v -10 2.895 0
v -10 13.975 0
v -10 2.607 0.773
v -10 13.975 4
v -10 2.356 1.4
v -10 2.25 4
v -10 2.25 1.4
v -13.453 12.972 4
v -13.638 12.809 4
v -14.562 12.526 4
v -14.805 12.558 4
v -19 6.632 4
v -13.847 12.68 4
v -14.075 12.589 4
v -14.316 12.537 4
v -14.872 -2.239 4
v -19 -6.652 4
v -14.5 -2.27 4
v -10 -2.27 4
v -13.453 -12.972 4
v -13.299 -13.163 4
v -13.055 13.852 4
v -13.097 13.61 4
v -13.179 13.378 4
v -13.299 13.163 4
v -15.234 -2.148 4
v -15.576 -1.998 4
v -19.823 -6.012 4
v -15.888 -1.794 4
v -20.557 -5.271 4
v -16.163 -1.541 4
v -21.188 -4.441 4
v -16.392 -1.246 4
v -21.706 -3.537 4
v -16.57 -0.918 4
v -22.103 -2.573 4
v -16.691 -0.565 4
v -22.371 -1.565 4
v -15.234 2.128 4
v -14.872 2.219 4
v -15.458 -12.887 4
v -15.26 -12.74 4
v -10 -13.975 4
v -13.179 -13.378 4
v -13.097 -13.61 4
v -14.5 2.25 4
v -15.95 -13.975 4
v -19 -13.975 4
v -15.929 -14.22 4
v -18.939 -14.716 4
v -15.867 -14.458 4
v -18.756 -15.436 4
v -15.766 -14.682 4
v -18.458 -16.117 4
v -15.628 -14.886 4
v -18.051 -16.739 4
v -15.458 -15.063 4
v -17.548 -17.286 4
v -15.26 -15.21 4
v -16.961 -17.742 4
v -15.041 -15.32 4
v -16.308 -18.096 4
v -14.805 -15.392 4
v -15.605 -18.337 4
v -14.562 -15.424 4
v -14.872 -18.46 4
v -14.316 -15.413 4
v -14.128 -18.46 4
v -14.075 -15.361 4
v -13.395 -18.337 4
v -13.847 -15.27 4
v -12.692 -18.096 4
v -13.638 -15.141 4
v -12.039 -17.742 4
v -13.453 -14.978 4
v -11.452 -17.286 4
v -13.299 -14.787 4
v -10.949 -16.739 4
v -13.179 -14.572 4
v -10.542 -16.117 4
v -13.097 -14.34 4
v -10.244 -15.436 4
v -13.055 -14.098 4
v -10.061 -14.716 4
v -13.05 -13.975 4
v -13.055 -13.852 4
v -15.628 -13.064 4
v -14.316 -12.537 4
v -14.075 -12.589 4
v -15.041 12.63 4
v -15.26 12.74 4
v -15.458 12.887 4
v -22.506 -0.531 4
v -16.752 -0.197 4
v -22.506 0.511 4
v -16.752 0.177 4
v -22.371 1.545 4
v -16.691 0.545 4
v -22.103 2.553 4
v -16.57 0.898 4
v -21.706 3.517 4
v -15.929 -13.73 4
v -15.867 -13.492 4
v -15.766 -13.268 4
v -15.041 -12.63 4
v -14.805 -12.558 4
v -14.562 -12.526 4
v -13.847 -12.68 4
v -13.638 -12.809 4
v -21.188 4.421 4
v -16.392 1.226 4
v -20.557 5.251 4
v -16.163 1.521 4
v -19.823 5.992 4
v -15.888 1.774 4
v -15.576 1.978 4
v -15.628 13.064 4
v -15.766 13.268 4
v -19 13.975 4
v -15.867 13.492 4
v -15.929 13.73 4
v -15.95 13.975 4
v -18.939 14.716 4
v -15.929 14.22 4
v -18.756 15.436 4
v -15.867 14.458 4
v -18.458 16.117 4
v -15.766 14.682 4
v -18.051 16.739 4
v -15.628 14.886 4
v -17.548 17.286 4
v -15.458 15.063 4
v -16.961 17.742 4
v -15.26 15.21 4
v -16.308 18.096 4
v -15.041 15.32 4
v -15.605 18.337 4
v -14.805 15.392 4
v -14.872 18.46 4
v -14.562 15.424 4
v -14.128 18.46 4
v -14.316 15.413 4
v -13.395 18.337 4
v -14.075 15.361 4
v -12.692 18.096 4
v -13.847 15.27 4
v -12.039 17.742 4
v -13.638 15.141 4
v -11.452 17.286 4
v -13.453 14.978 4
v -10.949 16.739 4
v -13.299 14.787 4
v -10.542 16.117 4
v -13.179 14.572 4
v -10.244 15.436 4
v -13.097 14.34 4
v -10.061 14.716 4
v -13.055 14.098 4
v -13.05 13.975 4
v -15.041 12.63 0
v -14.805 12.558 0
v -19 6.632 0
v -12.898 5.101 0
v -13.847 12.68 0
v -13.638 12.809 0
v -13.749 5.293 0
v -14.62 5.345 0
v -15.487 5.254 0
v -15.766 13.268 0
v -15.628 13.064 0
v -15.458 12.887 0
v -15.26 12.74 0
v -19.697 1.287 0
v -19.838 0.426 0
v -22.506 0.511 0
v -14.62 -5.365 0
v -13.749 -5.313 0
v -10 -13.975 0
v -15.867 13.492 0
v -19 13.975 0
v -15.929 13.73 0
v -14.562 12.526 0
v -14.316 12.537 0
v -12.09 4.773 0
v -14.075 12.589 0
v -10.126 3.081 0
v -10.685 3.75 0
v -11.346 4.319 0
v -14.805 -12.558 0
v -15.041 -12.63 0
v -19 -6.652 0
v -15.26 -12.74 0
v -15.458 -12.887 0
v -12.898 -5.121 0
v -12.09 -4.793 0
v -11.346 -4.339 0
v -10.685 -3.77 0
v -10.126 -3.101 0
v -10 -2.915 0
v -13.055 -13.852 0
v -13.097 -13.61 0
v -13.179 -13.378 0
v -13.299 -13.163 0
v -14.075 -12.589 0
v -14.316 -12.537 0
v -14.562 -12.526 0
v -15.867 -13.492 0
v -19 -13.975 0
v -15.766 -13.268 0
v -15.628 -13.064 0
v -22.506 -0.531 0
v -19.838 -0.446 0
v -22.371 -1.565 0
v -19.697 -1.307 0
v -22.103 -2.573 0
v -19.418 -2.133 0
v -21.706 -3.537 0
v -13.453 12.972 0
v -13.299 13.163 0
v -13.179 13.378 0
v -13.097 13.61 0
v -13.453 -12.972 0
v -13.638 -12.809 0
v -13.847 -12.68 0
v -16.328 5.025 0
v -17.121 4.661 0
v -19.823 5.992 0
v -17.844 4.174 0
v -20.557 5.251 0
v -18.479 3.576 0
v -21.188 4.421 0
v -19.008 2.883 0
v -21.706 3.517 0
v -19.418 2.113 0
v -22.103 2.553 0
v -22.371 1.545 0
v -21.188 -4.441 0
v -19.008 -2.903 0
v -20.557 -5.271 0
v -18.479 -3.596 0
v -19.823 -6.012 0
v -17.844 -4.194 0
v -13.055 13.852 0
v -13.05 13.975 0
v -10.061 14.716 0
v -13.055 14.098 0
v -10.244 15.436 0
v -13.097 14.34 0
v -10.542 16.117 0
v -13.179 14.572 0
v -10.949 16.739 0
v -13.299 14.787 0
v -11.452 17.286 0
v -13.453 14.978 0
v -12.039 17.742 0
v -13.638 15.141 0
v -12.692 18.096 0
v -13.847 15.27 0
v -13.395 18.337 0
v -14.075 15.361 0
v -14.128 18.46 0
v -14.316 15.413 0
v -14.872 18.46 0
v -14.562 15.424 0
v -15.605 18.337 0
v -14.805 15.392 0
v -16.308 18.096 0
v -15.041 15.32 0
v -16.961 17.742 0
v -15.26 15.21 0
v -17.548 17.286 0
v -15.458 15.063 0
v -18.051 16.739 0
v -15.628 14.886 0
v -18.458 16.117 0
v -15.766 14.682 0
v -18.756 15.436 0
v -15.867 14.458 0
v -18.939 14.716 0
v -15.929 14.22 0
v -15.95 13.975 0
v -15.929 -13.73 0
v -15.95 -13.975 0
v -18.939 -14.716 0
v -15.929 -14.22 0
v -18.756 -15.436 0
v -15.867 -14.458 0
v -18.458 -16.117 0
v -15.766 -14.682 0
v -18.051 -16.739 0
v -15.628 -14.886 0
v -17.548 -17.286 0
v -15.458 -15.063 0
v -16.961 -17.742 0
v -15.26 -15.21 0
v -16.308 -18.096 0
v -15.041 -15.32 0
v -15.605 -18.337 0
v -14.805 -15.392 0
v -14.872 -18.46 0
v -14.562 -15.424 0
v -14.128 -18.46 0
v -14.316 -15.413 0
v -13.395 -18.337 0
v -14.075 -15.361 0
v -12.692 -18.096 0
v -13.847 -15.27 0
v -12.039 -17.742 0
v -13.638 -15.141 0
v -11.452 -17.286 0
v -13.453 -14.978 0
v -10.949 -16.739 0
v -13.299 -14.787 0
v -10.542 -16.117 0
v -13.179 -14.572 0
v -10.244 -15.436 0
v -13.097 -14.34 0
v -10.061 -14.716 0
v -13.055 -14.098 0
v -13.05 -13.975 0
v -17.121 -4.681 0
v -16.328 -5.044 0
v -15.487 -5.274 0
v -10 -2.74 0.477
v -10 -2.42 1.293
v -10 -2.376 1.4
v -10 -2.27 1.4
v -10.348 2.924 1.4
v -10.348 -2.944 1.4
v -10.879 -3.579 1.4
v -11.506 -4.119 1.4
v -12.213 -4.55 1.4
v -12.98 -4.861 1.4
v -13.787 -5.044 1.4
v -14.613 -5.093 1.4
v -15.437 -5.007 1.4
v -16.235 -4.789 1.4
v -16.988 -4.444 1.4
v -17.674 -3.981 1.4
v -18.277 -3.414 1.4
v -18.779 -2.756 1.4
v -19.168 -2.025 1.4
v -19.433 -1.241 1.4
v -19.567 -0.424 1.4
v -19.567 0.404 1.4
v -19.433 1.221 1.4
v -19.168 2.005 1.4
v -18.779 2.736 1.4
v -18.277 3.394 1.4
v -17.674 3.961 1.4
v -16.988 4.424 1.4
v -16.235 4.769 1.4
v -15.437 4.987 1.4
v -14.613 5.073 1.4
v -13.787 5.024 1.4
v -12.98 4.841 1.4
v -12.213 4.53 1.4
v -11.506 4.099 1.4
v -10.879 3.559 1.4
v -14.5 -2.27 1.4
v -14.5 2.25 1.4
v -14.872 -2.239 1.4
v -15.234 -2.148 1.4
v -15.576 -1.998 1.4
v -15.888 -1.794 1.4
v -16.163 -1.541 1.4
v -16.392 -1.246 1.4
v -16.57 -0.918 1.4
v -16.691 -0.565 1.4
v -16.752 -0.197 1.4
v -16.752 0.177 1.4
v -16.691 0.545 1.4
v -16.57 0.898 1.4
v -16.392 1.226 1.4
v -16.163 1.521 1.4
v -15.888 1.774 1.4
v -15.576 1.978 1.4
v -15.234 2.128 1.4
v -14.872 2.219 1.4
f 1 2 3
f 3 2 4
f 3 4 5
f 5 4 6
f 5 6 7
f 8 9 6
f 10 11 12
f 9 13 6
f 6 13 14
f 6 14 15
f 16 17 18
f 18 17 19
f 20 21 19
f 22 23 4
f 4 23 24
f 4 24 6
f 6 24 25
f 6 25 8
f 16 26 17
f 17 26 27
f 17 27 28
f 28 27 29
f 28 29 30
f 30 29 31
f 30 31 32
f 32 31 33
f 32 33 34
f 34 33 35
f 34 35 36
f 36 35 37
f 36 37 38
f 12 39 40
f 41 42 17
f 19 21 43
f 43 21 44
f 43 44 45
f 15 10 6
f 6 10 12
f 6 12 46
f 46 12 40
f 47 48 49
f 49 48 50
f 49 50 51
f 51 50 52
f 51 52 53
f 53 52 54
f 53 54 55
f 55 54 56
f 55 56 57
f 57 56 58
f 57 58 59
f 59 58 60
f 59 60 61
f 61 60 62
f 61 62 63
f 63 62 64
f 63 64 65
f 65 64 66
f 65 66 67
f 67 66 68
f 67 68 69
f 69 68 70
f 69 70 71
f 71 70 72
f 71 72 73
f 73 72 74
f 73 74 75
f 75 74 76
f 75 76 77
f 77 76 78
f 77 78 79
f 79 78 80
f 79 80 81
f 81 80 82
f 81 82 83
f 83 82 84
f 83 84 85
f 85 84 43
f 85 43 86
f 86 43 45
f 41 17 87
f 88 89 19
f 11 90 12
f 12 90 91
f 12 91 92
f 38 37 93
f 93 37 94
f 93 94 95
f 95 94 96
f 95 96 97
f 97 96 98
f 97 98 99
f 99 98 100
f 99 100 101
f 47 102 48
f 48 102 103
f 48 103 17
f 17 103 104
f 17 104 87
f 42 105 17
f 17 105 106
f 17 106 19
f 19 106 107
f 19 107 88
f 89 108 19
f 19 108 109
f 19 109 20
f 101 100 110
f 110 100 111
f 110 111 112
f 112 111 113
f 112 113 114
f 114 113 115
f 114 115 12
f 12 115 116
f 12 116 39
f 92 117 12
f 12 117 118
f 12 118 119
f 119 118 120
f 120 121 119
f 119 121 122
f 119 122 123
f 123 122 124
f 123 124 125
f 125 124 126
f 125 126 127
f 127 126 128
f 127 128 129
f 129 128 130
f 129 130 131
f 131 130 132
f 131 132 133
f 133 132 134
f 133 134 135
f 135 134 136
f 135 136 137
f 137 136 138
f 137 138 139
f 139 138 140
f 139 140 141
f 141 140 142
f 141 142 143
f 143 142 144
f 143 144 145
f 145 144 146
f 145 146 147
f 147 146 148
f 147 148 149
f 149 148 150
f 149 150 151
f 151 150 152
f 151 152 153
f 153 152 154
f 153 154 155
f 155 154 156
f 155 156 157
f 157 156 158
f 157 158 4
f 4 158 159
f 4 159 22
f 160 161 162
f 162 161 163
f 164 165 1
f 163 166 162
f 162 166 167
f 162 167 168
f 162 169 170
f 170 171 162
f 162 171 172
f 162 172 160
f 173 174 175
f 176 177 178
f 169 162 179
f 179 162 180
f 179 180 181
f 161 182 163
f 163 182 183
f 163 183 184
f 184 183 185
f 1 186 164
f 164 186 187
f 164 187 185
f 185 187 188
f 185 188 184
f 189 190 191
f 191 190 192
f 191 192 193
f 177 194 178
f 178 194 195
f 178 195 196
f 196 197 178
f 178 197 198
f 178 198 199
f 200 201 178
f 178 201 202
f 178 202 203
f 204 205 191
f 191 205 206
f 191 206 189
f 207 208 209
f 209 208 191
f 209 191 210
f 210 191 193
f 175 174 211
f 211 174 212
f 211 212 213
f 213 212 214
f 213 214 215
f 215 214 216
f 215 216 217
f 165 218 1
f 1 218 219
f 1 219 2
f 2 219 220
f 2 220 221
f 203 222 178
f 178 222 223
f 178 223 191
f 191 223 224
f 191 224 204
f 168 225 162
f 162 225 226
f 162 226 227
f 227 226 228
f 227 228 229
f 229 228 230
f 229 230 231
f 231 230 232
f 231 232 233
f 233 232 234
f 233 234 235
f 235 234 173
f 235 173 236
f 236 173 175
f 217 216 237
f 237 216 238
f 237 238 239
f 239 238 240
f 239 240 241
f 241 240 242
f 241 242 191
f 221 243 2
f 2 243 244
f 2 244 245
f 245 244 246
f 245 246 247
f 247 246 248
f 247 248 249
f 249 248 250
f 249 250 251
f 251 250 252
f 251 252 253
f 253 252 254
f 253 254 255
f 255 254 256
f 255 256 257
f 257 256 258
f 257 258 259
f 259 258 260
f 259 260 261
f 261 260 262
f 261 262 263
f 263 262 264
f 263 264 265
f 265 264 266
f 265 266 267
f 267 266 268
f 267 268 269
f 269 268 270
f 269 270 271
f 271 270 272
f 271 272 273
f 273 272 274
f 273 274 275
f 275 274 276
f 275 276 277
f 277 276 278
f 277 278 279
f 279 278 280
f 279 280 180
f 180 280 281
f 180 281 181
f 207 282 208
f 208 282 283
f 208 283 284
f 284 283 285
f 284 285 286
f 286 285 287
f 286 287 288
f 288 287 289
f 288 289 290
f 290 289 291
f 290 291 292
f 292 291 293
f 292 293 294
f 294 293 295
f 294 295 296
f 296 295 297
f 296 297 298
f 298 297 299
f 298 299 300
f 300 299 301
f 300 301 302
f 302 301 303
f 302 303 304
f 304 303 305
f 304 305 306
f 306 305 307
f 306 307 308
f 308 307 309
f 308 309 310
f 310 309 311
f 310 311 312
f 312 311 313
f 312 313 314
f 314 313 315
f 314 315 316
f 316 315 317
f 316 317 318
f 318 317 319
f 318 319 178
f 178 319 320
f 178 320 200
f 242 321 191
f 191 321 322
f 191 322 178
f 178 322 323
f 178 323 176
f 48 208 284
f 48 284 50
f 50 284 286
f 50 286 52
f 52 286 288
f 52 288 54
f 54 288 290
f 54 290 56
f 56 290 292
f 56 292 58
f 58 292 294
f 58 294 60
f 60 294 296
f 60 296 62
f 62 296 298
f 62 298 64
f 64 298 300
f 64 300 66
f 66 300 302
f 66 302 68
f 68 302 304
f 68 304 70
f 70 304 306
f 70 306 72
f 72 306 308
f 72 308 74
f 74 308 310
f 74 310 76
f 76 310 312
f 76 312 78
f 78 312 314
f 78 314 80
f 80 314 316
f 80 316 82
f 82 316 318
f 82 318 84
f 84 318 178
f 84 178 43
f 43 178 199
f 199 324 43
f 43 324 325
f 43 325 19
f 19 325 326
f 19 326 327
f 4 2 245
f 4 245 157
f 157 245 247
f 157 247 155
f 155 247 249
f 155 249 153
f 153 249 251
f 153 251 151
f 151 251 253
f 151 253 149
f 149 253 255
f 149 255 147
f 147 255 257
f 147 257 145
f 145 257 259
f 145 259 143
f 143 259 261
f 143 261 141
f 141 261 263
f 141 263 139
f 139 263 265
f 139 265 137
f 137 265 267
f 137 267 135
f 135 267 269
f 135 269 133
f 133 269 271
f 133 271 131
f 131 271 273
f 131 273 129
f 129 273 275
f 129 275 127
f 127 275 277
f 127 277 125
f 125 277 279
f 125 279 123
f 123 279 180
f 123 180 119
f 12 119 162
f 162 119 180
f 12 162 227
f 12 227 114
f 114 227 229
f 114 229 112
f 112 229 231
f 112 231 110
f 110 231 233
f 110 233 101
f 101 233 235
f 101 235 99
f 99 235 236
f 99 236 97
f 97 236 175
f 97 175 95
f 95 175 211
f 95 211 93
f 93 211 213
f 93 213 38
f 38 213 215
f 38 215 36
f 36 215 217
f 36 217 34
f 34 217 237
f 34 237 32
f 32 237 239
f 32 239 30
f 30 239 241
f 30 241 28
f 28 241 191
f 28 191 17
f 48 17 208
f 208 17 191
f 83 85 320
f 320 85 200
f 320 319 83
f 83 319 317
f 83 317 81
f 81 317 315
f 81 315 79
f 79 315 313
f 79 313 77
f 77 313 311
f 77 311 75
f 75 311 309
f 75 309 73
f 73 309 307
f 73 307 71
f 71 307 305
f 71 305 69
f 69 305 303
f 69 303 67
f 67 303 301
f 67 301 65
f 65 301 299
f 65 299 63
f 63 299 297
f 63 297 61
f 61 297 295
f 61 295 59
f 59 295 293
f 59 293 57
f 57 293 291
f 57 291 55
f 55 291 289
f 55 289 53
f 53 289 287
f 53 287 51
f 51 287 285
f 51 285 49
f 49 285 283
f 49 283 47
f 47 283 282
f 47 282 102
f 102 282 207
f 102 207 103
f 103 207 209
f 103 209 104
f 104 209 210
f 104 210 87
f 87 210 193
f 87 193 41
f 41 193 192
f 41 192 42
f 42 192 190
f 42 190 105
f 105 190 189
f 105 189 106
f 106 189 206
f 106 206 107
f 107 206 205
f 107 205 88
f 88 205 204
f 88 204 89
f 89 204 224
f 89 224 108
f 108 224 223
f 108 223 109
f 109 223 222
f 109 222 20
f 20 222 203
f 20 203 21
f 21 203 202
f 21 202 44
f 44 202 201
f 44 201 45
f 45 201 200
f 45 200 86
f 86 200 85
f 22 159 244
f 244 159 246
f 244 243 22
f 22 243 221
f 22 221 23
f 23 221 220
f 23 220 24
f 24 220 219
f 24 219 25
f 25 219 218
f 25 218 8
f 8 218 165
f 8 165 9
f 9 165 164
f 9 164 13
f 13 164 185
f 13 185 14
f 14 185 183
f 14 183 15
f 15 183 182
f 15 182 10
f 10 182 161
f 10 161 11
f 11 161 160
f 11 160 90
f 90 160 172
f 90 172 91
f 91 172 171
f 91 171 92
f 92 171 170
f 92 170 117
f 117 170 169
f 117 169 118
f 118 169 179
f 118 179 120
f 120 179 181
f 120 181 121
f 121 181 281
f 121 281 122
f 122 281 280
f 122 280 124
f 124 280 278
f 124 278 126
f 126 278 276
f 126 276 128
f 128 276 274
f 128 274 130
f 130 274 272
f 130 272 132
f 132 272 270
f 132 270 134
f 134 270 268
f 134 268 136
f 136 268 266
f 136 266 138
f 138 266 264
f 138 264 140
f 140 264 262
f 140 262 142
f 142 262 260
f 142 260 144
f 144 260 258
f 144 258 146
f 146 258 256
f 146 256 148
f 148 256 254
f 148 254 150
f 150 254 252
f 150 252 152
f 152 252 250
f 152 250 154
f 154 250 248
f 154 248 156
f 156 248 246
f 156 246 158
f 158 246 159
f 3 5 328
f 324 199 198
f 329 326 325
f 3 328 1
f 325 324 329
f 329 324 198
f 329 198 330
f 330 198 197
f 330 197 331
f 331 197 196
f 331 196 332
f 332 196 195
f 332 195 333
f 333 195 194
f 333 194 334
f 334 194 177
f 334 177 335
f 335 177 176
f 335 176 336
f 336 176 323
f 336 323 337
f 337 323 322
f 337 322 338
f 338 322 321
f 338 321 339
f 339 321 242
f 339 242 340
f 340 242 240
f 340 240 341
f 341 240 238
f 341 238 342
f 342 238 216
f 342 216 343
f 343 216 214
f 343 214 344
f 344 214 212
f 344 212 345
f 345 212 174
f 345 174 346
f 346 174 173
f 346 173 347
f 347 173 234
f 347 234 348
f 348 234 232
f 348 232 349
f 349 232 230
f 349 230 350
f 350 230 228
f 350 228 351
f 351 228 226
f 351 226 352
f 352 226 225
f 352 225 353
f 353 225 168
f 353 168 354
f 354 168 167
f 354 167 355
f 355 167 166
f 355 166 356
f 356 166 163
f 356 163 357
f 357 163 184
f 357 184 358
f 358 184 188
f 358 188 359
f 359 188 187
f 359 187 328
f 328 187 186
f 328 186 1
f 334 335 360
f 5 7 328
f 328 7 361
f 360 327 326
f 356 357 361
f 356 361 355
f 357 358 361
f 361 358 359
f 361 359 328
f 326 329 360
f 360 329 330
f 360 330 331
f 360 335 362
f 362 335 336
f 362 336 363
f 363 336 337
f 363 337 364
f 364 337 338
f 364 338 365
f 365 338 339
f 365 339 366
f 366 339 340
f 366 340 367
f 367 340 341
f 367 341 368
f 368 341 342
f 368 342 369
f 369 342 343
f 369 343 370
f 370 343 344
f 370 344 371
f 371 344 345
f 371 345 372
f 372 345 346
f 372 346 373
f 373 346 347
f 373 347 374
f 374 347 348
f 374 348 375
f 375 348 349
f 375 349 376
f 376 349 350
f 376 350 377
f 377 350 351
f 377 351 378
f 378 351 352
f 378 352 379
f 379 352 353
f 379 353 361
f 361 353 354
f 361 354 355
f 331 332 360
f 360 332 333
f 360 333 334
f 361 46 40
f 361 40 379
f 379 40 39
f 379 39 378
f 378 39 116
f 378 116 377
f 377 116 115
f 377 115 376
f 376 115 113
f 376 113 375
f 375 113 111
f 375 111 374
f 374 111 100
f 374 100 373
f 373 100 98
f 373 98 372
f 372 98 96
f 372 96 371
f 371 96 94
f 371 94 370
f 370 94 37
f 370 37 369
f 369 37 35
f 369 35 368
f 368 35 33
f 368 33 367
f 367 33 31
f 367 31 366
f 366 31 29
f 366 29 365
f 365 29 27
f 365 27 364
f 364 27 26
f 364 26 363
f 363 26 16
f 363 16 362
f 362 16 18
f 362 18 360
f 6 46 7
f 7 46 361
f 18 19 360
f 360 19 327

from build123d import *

# Parameters (mm, degrees)
SKETCH1_R           = 1.45
BOSS_EXTRUDE1_DEPTH = 4
SKETCH2_R           = 5.35614303
CUT_EXTRUDE1_DEPTH  = 1.4
CUT_EXTRUDE1_TAPER  = 11
CUT_EXTRUDE2_DEPTH  = 5.5


with BuildPart() as part:
    # Sketch1 → Boss-Extrude1 (new body)
    with BuildSketch(Plane.XY):
        with BuildLine():
            Line((-19, 6.631961257), (-19, 13.975))
            ThreePointArc((-19, 13.975), (-14.5, 18.475), (-10, 13.975))
            Line((-10, 13.975), (-10, -13.975))
            ThreePointArc((-10, -13.975), (-14.5, -18.475), (-19, -13.975))
            Line((-19, -13.975), (-19, -6.651961257))
            ThreePointArc((-19, -6.651961257), (-22.522820535, -0.01), (-19, 6.631961257))
        make_face()
        with Locations((-14.5, -13.975)):
            Circle(SKETCH1_R, mode=Mode.SUBTRACT)
        with Locations((-14.5, 13.975)):
            Circle(SKETCH1_R, mode=Mode.SUBTRACT)
    extrude(amount=BOSS_EXTRUDE1_DEPTH)

    # Sketch2 → Cut-Extrude1 (cut)
    with BuildSketch(Plane(origin=(0, 0, 0), x_dir=(-1, 0, 0), z_dir=(0, 0, -1))):
        with Locations((14.5, -0.01)):
            Circle(SKETCH2_R)
    extrude(amount=-CUT_EXTRUDE1_DEPTH, taper=CUT_EXTRUDE1_TAPER, mode=Mode.SUBTRACT)

    # Sketch3 → Cut-Extrude2 (cut)
    with BuildSketch(Plane.XY.offset(4)):
        with BuildLine():
            Line((-14.5, -2.270184411), (-10, -2.270184411))
            Line((-10, -2.270184411), (-10, 2.250184411))
            Line((-10, 2.250184411), (-14.5, 2.250184411))
            ThreePointArc((-14.5, 2.250184411), (-16.760184411, -0.01), (-14.5, -2.270184411))
        make_face()
    extrude(amount=-CUT_EXTRUDE2_DEPTH, mode=Mode.SUBTRACT)


solid = part.part
